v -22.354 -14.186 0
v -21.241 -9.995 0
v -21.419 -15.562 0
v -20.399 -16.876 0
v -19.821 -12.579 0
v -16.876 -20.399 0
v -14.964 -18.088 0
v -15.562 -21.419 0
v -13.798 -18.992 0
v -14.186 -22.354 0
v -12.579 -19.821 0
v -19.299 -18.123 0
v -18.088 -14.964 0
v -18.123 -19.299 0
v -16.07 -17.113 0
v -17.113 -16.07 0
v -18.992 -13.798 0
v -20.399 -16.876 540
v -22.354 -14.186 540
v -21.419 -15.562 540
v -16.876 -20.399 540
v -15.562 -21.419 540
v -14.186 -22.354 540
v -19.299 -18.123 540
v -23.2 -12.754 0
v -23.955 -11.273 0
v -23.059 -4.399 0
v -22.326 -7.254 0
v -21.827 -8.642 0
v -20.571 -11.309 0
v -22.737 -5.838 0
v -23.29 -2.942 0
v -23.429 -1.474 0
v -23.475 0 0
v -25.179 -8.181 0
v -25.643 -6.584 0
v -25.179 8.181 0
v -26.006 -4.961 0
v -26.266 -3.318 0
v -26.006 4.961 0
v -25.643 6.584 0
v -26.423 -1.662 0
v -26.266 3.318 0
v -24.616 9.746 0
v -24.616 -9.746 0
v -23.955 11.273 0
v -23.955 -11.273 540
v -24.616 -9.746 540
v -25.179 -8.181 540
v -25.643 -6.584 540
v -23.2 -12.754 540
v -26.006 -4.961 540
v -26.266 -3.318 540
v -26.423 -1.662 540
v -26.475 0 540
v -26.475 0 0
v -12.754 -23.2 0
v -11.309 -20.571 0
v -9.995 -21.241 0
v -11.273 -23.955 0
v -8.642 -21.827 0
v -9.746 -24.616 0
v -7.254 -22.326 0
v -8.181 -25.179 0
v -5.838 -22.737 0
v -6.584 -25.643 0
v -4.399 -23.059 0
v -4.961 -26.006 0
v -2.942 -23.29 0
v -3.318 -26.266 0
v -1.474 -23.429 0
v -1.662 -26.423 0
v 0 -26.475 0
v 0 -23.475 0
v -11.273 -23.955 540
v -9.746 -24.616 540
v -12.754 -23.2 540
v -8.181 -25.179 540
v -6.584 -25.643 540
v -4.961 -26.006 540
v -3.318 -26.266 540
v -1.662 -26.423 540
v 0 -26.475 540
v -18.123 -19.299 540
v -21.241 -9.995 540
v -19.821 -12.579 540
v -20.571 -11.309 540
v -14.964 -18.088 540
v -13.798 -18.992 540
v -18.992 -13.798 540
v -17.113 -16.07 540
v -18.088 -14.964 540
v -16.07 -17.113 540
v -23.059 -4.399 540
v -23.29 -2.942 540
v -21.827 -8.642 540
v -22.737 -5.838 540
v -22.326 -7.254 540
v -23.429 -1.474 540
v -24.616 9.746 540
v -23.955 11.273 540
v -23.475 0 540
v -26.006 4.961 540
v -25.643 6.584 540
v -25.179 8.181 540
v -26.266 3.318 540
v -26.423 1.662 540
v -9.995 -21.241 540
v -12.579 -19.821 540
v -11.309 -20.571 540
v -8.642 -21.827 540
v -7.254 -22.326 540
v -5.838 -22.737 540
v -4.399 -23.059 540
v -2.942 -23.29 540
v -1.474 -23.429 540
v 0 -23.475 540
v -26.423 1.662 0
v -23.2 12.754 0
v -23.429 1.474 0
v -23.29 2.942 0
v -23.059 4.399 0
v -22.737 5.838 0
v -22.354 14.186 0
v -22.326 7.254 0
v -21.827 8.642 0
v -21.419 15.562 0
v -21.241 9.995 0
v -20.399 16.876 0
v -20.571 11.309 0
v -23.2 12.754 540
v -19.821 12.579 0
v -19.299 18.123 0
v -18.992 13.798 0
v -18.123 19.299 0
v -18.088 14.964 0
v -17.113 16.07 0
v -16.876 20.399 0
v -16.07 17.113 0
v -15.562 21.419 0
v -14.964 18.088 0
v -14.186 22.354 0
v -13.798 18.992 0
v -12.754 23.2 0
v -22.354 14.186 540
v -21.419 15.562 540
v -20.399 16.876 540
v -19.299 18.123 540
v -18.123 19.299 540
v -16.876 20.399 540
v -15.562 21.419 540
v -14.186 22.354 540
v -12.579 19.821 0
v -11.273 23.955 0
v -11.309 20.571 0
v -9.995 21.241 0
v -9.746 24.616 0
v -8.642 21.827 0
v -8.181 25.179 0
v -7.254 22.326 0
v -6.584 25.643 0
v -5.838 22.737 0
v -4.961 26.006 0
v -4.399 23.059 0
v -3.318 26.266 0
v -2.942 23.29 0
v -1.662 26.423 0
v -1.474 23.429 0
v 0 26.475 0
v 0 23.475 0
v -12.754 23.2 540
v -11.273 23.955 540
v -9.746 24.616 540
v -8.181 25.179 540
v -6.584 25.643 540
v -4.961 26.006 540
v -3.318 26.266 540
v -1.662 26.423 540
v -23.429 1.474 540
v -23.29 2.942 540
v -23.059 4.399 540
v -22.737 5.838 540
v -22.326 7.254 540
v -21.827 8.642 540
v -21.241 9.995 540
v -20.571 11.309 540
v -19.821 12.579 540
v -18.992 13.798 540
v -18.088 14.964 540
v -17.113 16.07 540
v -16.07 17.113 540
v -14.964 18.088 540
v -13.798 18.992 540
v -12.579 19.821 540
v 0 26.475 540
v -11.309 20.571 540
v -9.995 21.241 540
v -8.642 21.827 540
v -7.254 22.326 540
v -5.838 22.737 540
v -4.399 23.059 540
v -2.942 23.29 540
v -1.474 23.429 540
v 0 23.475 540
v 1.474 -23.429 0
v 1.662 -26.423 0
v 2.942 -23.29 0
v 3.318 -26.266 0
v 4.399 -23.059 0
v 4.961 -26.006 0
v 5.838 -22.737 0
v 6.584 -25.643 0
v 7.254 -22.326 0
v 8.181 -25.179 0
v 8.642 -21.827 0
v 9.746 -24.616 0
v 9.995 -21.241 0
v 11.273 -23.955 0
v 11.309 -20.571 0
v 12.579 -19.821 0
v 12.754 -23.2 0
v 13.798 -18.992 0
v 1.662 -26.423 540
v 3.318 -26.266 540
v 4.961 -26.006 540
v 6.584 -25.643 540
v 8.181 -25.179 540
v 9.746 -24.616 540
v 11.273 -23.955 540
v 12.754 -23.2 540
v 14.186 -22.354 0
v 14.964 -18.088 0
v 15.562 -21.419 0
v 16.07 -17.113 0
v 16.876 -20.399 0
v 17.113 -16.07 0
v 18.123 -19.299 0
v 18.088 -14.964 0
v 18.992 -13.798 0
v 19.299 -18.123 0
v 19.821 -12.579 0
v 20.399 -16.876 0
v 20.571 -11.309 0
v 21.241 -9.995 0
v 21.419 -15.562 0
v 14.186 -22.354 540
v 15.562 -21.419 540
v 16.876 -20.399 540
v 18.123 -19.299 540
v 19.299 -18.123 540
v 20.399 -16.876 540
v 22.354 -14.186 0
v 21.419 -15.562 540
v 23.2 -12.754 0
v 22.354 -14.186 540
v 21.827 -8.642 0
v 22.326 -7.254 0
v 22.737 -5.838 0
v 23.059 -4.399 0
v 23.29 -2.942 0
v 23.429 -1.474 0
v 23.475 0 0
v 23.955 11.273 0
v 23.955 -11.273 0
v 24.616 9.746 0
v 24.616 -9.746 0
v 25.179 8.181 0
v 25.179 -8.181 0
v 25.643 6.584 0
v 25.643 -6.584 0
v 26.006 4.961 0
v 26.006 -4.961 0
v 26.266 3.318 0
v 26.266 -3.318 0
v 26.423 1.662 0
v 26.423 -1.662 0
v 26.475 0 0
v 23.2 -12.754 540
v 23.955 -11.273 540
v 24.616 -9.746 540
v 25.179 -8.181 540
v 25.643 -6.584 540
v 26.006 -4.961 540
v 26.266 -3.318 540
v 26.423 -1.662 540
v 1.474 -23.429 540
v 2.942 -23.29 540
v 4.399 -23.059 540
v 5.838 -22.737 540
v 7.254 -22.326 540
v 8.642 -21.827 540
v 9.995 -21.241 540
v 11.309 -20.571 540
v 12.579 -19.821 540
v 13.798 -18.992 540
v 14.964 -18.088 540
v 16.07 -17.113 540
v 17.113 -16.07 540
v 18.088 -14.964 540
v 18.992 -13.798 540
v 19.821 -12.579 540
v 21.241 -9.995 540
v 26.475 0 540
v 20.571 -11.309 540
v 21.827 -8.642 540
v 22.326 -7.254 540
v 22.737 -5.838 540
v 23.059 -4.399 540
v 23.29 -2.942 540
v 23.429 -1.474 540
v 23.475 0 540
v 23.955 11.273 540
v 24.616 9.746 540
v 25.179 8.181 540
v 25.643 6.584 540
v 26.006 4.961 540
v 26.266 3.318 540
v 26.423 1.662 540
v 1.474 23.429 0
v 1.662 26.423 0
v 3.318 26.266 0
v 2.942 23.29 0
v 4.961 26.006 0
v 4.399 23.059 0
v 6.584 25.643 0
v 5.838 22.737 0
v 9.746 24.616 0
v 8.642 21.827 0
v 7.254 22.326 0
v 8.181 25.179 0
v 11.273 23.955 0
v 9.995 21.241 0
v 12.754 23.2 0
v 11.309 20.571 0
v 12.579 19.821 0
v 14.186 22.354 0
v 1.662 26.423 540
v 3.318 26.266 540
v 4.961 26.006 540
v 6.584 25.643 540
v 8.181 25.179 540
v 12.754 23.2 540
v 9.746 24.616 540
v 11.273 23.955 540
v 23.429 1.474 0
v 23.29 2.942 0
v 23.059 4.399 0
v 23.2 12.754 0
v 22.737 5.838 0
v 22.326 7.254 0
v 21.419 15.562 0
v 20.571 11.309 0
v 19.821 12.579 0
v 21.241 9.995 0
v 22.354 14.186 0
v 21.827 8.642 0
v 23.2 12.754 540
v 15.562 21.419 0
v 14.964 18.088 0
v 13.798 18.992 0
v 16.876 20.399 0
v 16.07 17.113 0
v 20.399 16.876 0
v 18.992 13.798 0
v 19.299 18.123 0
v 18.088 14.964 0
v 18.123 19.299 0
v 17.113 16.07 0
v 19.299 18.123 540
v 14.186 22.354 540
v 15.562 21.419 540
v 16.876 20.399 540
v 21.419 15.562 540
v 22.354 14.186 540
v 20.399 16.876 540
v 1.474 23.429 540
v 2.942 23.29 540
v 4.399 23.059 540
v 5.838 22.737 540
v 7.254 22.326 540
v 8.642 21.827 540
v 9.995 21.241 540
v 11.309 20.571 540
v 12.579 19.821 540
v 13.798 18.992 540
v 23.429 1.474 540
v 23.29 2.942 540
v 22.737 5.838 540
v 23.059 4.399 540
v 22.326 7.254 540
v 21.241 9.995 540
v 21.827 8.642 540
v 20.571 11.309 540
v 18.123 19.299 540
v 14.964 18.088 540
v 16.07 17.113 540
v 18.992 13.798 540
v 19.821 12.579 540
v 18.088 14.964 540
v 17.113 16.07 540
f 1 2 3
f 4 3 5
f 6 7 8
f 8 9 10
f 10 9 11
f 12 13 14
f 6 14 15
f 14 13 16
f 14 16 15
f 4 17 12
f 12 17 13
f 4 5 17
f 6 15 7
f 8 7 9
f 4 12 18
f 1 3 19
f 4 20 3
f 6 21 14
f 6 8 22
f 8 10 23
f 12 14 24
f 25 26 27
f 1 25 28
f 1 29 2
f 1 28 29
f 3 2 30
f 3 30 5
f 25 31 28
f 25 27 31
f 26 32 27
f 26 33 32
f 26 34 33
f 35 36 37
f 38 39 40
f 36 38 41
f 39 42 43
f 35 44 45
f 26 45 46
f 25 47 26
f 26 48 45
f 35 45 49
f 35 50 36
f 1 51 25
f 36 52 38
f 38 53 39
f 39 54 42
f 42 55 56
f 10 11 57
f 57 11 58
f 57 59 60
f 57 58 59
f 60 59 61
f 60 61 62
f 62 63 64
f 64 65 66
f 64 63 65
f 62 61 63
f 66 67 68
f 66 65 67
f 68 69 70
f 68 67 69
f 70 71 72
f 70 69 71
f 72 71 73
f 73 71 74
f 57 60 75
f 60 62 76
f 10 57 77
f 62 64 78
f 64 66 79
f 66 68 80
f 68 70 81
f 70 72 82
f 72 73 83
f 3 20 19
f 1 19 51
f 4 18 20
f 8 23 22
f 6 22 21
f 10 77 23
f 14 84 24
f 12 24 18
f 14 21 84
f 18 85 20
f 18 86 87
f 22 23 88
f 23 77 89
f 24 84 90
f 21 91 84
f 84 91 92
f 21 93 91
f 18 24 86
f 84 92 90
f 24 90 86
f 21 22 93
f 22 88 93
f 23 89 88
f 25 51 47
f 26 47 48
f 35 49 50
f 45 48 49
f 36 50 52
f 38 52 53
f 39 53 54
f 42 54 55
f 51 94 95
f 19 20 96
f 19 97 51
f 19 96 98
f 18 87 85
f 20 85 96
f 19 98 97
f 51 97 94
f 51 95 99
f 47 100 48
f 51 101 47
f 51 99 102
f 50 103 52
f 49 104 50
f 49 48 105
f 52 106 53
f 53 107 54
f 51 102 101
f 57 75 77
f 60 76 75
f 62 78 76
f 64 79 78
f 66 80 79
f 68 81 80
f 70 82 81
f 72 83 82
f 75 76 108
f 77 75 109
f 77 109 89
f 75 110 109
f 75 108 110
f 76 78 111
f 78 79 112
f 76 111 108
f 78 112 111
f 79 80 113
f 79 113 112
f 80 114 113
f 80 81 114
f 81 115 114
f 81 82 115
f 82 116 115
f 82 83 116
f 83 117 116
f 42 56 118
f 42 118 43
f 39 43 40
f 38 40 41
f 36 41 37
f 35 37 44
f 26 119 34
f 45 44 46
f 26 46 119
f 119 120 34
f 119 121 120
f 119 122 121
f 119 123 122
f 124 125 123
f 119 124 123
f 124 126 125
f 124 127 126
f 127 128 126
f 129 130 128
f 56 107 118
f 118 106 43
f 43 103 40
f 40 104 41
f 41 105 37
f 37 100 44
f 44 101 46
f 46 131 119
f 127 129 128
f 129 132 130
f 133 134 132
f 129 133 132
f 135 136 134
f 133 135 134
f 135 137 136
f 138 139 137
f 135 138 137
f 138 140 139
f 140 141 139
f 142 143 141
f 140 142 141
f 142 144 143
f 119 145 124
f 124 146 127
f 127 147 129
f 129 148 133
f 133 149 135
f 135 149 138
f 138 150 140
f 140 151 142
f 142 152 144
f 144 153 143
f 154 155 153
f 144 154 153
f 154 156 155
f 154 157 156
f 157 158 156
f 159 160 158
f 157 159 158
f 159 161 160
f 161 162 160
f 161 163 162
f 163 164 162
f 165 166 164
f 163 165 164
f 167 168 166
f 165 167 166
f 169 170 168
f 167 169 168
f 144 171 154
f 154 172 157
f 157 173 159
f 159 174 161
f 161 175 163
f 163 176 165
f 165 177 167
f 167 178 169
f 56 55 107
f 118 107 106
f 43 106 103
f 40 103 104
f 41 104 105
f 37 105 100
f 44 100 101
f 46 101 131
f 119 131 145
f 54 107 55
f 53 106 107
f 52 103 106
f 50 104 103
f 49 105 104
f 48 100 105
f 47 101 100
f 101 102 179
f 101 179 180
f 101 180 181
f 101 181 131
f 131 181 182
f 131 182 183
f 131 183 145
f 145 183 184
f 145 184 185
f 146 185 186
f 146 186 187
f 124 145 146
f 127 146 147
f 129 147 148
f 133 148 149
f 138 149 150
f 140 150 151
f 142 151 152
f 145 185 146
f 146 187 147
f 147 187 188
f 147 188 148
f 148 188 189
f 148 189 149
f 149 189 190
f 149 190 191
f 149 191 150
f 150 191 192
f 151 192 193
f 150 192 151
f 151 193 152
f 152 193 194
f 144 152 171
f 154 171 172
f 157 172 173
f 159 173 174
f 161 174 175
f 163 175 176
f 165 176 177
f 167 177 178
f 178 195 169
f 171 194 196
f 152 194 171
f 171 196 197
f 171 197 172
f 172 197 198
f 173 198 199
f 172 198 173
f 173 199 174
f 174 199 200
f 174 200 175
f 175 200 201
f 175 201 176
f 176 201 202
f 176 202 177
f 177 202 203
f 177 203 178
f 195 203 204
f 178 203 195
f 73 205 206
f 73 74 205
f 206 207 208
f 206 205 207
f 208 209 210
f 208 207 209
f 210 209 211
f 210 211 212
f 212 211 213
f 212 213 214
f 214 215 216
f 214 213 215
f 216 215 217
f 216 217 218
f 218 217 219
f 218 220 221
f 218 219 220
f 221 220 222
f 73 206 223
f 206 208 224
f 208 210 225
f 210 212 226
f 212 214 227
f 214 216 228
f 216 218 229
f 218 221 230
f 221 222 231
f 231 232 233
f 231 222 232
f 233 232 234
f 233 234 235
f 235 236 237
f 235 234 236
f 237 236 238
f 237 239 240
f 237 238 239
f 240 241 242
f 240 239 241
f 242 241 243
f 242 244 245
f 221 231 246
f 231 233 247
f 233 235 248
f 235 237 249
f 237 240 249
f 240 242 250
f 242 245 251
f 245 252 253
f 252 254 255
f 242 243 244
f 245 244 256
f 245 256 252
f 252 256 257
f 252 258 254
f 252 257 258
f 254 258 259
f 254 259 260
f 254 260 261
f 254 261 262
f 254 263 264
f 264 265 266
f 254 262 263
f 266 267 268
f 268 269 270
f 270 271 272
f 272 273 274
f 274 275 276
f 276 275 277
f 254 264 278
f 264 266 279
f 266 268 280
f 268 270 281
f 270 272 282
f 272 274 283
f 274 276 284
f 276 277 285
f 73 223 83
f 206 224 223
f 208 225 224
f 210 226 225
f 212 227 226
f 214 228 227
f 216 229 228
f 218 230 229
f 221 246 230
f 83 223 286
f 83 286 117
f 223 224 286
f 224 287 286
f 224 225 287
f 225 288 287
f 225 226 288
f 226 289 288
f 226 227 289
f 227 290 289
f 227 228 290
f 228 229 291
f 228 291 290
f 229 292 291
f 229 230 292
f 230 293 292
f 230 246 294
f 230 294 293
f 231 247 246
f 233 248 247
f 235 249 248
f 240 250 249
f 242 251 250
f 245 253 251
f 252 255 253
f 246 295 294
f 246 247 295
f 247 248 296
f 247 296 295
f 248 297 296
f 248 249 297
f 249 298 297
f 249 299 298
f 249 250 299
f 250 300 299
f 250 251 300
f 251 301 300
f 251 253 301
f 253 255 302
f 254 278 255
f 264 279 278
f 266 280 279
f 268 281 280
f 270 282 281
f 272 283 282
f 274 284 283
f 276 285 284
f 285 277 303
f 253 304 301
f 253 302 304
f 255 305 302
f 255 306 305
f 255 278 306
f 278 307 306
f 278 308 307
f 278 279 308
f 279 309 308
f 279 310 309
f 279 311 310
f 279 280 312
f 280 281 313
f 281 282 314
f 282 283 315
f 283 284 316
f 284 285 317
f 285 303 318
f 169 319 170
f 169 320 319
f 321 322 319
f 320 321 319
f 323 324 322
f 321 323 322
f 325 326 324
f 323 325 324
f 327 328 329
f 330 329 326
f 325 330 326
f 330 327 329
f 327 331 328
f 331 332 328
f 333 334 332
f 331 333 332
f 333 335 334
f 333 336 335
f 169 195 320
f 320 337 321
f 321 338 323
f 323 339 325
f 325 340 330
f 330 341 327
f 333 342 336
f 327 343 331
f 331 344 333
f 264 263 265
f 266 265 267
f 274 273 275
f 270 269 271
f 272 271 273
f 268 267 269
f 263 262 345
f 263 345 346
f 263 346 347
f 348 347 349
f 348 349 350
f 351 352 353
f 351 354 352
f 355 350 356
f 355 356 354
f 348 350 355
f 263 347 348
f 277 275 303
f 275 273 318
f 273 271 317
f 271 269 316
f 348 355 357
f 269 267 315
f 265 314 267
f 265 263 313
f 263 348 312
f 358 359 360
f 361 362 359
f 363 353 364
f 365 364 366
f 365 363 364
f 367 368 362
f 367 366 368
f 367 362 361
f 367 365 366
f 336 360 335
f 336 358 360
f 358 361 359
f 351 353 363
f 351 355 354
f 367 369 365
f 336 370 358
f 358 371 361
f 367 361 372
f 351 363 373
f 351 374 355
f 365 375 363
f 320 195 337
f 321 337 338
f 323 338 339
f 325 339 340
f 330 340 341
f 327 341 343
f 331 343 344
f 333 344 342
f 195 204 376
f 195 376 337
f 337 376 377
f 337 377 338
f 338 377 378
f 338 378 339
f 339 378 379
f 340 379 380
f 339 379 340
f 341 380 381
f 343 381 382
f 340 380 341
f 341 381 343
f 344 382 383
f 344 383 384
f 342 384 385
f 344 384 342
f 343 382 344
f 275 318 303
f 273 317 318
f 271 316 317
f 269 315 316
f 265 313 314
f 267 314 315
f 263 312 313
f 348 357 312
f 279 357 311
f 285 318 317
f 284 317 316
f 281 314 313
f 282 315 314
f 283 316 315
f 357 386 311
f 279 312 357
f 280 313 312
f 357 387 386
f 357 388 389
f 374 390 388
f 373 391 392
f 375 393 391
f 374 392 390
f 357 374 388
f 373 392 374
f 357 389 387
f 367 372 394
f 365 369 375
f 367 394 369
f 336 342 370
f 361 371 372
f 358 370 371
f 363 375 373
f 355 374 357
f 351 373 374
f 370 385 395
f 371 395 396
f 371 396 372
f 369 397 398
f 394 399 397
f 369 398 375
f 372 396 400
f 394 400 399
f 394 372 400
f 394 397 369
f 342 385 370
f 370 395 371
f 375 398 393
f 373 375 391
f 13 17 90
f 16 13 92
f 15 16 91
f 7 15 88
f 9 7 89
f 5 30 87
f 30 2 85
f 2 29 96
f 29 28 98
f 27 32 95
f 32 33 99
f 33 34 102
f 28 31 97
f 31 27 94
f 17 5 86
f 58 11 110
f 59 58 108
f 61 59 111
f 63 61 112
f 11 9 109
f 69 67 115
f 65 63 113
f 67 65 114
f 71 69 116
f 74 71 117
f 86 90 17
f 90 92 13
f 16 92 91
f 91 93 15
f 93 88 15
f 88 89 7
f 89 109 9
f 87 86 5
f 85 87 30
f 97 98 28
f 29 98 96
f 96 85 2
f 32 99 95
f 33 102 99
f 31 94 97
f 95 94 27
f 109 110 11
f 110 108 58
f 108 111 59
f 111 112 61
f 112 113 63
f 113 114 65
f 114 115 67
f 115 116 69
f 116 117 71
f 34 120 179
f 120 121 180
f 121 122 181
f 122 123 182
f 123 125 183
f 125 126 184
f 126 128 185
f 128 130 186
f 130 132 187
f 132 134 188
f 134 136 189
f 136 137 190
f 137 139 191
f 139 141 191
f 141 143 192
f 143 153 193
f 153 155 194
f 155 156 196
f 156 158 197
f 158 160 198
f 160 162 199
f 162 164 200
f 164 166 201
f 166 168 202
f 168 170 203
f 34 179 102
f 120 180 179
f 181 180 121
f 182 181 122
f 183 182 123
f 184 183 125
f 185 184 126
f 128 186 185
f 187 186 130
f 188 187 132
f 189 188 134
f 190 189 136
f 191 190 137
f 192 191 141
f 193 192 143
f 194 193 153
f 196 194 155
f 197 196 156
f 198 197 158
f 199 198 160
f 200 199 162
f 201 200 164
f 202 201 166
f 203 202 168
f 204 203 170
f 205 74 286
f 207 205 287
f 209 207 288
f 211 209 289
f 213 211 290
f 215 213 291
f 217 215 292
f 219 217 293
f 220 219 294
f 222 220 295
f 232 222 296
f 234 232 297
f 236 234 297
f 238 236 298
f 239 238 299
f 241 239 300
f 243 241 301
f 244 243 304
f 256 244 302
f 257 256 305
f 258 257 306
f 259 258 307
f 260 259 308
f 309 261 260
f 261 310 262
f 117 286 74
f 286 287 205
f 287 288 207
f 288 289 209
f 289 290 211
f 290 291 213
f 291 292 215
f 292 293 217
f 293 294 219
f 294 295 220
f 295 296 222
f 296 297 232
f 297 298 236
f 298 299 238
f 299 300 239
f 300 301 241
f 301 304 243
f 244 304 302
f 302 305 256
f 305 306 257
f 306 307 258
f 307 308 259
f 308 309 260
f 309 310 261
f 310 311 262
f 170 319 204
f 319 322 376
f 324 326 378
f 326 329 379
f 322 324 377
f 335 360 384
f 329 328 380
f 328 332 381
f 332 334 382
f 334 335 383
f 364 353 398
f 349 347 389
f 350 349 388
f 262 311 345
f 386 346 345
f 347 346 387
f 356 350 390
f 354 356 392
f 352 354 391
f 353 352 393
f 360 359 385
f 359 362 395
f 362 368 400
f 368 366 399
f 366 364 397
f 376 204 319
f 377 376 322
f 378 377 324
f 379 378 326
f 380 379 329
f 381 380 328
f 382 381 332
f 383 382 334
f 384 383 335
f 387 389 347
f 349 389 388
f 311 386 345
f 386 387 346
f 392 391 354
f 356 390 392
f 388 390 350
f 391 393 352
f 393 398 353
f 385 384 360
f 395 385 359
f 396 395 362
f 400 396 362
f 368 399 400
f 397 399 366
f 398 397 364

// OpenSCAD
// file: design_params.scad
// ============================================================
// STARLING SHARED DESIGN PARAMETERS — single source of truth for
// every dimension two parts must agree on.
//
// Consumers:
//   - every part in cad/ does        include <design_params.scad>
//   - parts in cad/calibration/ do   include <../design_params.scad>
//   - scripts/check_params.py FAILS the build if any of these names
//     is re-declared anywhere else — change values HERE only.
//
// Keep this file to simple `name = value;` lines so the tooling can
// parse it. One-off experiments: `openscad -D name=value` beats the
// include, no need to edit this file.
// ============================================================

// --- The paper tube (bought part, consumable) ---
// BOTH diameters are measured, not derived from a nominal wall thickness:
// paper wall varies batch to batch, so the OD does not predict the bore.
// Print the two calibration gauges with every new batch of tube, and type
// the number engraved on the best-fitting variant in here.
tube_od     = 52.95;   // sleeves slide OVER this — cad/calibration/tube_fit_ring.scad
tube_id     = 46.95;   // plugs slide INTO this  — cad/calibration/tube_bore_gauge.scad
tube_length = 540;

// --- Printed-part fits ---
sleeve_clearance = 0;   // added to every sleeve bore diameter; tune via the fit ring
plug_clearance   = 0;   // subtracted from every plug OD; tune via the bore gauge
fit_tol          = 0.2; // clearance for printed slots/pockets
sleeve_wall      = 3;   // wall thickness of printed sleeves

// --- Wing spar chain (rib holes = adapter sockets = carbon rods) ---
spar_rod_d    = 6;     // carbon rod diameter
spar_hole_d   = 6.2;   // printed hole for that rod
spar_spacing  = 20;    // chordwise distance between the two spars
spar_y_offset = 1.5;   // spar line sits this far above the rib chord line

// --- Wing geometry ---
rib_chord     = 100;
naca_code     = 2415;  // cambered lifting section
rib_thickness = 2;

// --- Wing adapter <-> root rib interface ---
wing_tab_thickness = 11; // adapter tab (socket carrier; ribs sit outboard of it)
wing_tab_span      = 15; // how far the tab reaches out from the sleeve
adapter_length     = 40; // sleeve length = tab chord extent

// --- Stations along the tube (assembly; wing slides for CG trim) ---
wing_station       = 300; // wing adapter position, measured from the motor face
tail_tube_stop     = 54;  // tube bottoms out here inside the tail sleeve (rim top)
nose_sleeve_length = 20;  // how far the nose cone slides over the tube

// --- Servos (9 g / SG90 class) ---
servo_body   = [23, 12.2]; // [length, width]
servo_flange = [32, 12.2];
servo_height = 22;         // body height incl. shaft boss, without horn

// --- Control system (internal servos, wire pushrods through wall slots) ---
ctrl_chord       = 22;   // control-surface chord (elevator / rudder / aileron)
ctrl_thickness   = 4;    // control-surface root thickness = fin thickness
hinge_groove_w   = 1.6;  // groove for the hinge strip/tape, both fin TE and surface LE
hinge_groove_d   = 2.5;
pushrod_d        = 1.2;  // piano-wire pushrod, attached at the TIP of both arms
pushrod_slot_w   = 2.5;  // wall slot the pushrod moves in
pushrod_slot_len = 18;   // slot channel length along the rod (see throw_check.py)
servo_horn_r     = 10;   // full arm length — the wire connects at the far end
servo_travel_deg = 45;   // used one-sided travel; the arm can do ~±90 (180 total)
                         // but the linkage stays near-linear only within ±45
ctrl_horn_r      = 10;   // control-surface horn = servo horn -> 1:1 linkage

// Tail linkage geometry. Three 22 mm-wide servos cannot share one height
// inside the Ø53 bore (corner collisions), so they are STAGGERED in Z:
// the two elevator servos sit HIGH (opposite sides, they coexist), the
// rudder servo sits LOW. Each wire attaches at the arm tip and exits
// through an angled wall slot raked toward its surface horn.
tail_servo_z           = 33; // bottom (shaft end) of the ELEVATOR servo bodies
tail_slot_angle        = 42; // elevator rod angle off the fuselage axis
tail_rudder_z          = 9;  // bottom (shaft end) of the RUDDER servo body
tail_rudder_slot_angle = 56; // rudder rod angle off the fuselage axis

// --- Motor (22xx class, rear pusher) ---
motor_shaft_hole_d = 10;
motor_screw_hole_d = 4;
motor_pattern_x    = 16;  // screw pattern
motor_pattern_y    = 19;
// main file
// Visual model of the bought paper tube — NOT a printed part (regen_all.py
// deliberately exports no STL for it). Exists so main_assembly.scad can
// show the parts in context.

include <design_params.scad>

module fuselage() {
    difference() {
        cylinder(h = tube_length, r = tube_od / 2);
        // extend the cutter past both ends — coincident faces make the
        // boolean result non-manifold
        translate([0, 0, -0.1])
            cylinder(h = tube_length + 0.2, r = tube_id / 2);
    }
}

$fn = 100;
fuselage();
